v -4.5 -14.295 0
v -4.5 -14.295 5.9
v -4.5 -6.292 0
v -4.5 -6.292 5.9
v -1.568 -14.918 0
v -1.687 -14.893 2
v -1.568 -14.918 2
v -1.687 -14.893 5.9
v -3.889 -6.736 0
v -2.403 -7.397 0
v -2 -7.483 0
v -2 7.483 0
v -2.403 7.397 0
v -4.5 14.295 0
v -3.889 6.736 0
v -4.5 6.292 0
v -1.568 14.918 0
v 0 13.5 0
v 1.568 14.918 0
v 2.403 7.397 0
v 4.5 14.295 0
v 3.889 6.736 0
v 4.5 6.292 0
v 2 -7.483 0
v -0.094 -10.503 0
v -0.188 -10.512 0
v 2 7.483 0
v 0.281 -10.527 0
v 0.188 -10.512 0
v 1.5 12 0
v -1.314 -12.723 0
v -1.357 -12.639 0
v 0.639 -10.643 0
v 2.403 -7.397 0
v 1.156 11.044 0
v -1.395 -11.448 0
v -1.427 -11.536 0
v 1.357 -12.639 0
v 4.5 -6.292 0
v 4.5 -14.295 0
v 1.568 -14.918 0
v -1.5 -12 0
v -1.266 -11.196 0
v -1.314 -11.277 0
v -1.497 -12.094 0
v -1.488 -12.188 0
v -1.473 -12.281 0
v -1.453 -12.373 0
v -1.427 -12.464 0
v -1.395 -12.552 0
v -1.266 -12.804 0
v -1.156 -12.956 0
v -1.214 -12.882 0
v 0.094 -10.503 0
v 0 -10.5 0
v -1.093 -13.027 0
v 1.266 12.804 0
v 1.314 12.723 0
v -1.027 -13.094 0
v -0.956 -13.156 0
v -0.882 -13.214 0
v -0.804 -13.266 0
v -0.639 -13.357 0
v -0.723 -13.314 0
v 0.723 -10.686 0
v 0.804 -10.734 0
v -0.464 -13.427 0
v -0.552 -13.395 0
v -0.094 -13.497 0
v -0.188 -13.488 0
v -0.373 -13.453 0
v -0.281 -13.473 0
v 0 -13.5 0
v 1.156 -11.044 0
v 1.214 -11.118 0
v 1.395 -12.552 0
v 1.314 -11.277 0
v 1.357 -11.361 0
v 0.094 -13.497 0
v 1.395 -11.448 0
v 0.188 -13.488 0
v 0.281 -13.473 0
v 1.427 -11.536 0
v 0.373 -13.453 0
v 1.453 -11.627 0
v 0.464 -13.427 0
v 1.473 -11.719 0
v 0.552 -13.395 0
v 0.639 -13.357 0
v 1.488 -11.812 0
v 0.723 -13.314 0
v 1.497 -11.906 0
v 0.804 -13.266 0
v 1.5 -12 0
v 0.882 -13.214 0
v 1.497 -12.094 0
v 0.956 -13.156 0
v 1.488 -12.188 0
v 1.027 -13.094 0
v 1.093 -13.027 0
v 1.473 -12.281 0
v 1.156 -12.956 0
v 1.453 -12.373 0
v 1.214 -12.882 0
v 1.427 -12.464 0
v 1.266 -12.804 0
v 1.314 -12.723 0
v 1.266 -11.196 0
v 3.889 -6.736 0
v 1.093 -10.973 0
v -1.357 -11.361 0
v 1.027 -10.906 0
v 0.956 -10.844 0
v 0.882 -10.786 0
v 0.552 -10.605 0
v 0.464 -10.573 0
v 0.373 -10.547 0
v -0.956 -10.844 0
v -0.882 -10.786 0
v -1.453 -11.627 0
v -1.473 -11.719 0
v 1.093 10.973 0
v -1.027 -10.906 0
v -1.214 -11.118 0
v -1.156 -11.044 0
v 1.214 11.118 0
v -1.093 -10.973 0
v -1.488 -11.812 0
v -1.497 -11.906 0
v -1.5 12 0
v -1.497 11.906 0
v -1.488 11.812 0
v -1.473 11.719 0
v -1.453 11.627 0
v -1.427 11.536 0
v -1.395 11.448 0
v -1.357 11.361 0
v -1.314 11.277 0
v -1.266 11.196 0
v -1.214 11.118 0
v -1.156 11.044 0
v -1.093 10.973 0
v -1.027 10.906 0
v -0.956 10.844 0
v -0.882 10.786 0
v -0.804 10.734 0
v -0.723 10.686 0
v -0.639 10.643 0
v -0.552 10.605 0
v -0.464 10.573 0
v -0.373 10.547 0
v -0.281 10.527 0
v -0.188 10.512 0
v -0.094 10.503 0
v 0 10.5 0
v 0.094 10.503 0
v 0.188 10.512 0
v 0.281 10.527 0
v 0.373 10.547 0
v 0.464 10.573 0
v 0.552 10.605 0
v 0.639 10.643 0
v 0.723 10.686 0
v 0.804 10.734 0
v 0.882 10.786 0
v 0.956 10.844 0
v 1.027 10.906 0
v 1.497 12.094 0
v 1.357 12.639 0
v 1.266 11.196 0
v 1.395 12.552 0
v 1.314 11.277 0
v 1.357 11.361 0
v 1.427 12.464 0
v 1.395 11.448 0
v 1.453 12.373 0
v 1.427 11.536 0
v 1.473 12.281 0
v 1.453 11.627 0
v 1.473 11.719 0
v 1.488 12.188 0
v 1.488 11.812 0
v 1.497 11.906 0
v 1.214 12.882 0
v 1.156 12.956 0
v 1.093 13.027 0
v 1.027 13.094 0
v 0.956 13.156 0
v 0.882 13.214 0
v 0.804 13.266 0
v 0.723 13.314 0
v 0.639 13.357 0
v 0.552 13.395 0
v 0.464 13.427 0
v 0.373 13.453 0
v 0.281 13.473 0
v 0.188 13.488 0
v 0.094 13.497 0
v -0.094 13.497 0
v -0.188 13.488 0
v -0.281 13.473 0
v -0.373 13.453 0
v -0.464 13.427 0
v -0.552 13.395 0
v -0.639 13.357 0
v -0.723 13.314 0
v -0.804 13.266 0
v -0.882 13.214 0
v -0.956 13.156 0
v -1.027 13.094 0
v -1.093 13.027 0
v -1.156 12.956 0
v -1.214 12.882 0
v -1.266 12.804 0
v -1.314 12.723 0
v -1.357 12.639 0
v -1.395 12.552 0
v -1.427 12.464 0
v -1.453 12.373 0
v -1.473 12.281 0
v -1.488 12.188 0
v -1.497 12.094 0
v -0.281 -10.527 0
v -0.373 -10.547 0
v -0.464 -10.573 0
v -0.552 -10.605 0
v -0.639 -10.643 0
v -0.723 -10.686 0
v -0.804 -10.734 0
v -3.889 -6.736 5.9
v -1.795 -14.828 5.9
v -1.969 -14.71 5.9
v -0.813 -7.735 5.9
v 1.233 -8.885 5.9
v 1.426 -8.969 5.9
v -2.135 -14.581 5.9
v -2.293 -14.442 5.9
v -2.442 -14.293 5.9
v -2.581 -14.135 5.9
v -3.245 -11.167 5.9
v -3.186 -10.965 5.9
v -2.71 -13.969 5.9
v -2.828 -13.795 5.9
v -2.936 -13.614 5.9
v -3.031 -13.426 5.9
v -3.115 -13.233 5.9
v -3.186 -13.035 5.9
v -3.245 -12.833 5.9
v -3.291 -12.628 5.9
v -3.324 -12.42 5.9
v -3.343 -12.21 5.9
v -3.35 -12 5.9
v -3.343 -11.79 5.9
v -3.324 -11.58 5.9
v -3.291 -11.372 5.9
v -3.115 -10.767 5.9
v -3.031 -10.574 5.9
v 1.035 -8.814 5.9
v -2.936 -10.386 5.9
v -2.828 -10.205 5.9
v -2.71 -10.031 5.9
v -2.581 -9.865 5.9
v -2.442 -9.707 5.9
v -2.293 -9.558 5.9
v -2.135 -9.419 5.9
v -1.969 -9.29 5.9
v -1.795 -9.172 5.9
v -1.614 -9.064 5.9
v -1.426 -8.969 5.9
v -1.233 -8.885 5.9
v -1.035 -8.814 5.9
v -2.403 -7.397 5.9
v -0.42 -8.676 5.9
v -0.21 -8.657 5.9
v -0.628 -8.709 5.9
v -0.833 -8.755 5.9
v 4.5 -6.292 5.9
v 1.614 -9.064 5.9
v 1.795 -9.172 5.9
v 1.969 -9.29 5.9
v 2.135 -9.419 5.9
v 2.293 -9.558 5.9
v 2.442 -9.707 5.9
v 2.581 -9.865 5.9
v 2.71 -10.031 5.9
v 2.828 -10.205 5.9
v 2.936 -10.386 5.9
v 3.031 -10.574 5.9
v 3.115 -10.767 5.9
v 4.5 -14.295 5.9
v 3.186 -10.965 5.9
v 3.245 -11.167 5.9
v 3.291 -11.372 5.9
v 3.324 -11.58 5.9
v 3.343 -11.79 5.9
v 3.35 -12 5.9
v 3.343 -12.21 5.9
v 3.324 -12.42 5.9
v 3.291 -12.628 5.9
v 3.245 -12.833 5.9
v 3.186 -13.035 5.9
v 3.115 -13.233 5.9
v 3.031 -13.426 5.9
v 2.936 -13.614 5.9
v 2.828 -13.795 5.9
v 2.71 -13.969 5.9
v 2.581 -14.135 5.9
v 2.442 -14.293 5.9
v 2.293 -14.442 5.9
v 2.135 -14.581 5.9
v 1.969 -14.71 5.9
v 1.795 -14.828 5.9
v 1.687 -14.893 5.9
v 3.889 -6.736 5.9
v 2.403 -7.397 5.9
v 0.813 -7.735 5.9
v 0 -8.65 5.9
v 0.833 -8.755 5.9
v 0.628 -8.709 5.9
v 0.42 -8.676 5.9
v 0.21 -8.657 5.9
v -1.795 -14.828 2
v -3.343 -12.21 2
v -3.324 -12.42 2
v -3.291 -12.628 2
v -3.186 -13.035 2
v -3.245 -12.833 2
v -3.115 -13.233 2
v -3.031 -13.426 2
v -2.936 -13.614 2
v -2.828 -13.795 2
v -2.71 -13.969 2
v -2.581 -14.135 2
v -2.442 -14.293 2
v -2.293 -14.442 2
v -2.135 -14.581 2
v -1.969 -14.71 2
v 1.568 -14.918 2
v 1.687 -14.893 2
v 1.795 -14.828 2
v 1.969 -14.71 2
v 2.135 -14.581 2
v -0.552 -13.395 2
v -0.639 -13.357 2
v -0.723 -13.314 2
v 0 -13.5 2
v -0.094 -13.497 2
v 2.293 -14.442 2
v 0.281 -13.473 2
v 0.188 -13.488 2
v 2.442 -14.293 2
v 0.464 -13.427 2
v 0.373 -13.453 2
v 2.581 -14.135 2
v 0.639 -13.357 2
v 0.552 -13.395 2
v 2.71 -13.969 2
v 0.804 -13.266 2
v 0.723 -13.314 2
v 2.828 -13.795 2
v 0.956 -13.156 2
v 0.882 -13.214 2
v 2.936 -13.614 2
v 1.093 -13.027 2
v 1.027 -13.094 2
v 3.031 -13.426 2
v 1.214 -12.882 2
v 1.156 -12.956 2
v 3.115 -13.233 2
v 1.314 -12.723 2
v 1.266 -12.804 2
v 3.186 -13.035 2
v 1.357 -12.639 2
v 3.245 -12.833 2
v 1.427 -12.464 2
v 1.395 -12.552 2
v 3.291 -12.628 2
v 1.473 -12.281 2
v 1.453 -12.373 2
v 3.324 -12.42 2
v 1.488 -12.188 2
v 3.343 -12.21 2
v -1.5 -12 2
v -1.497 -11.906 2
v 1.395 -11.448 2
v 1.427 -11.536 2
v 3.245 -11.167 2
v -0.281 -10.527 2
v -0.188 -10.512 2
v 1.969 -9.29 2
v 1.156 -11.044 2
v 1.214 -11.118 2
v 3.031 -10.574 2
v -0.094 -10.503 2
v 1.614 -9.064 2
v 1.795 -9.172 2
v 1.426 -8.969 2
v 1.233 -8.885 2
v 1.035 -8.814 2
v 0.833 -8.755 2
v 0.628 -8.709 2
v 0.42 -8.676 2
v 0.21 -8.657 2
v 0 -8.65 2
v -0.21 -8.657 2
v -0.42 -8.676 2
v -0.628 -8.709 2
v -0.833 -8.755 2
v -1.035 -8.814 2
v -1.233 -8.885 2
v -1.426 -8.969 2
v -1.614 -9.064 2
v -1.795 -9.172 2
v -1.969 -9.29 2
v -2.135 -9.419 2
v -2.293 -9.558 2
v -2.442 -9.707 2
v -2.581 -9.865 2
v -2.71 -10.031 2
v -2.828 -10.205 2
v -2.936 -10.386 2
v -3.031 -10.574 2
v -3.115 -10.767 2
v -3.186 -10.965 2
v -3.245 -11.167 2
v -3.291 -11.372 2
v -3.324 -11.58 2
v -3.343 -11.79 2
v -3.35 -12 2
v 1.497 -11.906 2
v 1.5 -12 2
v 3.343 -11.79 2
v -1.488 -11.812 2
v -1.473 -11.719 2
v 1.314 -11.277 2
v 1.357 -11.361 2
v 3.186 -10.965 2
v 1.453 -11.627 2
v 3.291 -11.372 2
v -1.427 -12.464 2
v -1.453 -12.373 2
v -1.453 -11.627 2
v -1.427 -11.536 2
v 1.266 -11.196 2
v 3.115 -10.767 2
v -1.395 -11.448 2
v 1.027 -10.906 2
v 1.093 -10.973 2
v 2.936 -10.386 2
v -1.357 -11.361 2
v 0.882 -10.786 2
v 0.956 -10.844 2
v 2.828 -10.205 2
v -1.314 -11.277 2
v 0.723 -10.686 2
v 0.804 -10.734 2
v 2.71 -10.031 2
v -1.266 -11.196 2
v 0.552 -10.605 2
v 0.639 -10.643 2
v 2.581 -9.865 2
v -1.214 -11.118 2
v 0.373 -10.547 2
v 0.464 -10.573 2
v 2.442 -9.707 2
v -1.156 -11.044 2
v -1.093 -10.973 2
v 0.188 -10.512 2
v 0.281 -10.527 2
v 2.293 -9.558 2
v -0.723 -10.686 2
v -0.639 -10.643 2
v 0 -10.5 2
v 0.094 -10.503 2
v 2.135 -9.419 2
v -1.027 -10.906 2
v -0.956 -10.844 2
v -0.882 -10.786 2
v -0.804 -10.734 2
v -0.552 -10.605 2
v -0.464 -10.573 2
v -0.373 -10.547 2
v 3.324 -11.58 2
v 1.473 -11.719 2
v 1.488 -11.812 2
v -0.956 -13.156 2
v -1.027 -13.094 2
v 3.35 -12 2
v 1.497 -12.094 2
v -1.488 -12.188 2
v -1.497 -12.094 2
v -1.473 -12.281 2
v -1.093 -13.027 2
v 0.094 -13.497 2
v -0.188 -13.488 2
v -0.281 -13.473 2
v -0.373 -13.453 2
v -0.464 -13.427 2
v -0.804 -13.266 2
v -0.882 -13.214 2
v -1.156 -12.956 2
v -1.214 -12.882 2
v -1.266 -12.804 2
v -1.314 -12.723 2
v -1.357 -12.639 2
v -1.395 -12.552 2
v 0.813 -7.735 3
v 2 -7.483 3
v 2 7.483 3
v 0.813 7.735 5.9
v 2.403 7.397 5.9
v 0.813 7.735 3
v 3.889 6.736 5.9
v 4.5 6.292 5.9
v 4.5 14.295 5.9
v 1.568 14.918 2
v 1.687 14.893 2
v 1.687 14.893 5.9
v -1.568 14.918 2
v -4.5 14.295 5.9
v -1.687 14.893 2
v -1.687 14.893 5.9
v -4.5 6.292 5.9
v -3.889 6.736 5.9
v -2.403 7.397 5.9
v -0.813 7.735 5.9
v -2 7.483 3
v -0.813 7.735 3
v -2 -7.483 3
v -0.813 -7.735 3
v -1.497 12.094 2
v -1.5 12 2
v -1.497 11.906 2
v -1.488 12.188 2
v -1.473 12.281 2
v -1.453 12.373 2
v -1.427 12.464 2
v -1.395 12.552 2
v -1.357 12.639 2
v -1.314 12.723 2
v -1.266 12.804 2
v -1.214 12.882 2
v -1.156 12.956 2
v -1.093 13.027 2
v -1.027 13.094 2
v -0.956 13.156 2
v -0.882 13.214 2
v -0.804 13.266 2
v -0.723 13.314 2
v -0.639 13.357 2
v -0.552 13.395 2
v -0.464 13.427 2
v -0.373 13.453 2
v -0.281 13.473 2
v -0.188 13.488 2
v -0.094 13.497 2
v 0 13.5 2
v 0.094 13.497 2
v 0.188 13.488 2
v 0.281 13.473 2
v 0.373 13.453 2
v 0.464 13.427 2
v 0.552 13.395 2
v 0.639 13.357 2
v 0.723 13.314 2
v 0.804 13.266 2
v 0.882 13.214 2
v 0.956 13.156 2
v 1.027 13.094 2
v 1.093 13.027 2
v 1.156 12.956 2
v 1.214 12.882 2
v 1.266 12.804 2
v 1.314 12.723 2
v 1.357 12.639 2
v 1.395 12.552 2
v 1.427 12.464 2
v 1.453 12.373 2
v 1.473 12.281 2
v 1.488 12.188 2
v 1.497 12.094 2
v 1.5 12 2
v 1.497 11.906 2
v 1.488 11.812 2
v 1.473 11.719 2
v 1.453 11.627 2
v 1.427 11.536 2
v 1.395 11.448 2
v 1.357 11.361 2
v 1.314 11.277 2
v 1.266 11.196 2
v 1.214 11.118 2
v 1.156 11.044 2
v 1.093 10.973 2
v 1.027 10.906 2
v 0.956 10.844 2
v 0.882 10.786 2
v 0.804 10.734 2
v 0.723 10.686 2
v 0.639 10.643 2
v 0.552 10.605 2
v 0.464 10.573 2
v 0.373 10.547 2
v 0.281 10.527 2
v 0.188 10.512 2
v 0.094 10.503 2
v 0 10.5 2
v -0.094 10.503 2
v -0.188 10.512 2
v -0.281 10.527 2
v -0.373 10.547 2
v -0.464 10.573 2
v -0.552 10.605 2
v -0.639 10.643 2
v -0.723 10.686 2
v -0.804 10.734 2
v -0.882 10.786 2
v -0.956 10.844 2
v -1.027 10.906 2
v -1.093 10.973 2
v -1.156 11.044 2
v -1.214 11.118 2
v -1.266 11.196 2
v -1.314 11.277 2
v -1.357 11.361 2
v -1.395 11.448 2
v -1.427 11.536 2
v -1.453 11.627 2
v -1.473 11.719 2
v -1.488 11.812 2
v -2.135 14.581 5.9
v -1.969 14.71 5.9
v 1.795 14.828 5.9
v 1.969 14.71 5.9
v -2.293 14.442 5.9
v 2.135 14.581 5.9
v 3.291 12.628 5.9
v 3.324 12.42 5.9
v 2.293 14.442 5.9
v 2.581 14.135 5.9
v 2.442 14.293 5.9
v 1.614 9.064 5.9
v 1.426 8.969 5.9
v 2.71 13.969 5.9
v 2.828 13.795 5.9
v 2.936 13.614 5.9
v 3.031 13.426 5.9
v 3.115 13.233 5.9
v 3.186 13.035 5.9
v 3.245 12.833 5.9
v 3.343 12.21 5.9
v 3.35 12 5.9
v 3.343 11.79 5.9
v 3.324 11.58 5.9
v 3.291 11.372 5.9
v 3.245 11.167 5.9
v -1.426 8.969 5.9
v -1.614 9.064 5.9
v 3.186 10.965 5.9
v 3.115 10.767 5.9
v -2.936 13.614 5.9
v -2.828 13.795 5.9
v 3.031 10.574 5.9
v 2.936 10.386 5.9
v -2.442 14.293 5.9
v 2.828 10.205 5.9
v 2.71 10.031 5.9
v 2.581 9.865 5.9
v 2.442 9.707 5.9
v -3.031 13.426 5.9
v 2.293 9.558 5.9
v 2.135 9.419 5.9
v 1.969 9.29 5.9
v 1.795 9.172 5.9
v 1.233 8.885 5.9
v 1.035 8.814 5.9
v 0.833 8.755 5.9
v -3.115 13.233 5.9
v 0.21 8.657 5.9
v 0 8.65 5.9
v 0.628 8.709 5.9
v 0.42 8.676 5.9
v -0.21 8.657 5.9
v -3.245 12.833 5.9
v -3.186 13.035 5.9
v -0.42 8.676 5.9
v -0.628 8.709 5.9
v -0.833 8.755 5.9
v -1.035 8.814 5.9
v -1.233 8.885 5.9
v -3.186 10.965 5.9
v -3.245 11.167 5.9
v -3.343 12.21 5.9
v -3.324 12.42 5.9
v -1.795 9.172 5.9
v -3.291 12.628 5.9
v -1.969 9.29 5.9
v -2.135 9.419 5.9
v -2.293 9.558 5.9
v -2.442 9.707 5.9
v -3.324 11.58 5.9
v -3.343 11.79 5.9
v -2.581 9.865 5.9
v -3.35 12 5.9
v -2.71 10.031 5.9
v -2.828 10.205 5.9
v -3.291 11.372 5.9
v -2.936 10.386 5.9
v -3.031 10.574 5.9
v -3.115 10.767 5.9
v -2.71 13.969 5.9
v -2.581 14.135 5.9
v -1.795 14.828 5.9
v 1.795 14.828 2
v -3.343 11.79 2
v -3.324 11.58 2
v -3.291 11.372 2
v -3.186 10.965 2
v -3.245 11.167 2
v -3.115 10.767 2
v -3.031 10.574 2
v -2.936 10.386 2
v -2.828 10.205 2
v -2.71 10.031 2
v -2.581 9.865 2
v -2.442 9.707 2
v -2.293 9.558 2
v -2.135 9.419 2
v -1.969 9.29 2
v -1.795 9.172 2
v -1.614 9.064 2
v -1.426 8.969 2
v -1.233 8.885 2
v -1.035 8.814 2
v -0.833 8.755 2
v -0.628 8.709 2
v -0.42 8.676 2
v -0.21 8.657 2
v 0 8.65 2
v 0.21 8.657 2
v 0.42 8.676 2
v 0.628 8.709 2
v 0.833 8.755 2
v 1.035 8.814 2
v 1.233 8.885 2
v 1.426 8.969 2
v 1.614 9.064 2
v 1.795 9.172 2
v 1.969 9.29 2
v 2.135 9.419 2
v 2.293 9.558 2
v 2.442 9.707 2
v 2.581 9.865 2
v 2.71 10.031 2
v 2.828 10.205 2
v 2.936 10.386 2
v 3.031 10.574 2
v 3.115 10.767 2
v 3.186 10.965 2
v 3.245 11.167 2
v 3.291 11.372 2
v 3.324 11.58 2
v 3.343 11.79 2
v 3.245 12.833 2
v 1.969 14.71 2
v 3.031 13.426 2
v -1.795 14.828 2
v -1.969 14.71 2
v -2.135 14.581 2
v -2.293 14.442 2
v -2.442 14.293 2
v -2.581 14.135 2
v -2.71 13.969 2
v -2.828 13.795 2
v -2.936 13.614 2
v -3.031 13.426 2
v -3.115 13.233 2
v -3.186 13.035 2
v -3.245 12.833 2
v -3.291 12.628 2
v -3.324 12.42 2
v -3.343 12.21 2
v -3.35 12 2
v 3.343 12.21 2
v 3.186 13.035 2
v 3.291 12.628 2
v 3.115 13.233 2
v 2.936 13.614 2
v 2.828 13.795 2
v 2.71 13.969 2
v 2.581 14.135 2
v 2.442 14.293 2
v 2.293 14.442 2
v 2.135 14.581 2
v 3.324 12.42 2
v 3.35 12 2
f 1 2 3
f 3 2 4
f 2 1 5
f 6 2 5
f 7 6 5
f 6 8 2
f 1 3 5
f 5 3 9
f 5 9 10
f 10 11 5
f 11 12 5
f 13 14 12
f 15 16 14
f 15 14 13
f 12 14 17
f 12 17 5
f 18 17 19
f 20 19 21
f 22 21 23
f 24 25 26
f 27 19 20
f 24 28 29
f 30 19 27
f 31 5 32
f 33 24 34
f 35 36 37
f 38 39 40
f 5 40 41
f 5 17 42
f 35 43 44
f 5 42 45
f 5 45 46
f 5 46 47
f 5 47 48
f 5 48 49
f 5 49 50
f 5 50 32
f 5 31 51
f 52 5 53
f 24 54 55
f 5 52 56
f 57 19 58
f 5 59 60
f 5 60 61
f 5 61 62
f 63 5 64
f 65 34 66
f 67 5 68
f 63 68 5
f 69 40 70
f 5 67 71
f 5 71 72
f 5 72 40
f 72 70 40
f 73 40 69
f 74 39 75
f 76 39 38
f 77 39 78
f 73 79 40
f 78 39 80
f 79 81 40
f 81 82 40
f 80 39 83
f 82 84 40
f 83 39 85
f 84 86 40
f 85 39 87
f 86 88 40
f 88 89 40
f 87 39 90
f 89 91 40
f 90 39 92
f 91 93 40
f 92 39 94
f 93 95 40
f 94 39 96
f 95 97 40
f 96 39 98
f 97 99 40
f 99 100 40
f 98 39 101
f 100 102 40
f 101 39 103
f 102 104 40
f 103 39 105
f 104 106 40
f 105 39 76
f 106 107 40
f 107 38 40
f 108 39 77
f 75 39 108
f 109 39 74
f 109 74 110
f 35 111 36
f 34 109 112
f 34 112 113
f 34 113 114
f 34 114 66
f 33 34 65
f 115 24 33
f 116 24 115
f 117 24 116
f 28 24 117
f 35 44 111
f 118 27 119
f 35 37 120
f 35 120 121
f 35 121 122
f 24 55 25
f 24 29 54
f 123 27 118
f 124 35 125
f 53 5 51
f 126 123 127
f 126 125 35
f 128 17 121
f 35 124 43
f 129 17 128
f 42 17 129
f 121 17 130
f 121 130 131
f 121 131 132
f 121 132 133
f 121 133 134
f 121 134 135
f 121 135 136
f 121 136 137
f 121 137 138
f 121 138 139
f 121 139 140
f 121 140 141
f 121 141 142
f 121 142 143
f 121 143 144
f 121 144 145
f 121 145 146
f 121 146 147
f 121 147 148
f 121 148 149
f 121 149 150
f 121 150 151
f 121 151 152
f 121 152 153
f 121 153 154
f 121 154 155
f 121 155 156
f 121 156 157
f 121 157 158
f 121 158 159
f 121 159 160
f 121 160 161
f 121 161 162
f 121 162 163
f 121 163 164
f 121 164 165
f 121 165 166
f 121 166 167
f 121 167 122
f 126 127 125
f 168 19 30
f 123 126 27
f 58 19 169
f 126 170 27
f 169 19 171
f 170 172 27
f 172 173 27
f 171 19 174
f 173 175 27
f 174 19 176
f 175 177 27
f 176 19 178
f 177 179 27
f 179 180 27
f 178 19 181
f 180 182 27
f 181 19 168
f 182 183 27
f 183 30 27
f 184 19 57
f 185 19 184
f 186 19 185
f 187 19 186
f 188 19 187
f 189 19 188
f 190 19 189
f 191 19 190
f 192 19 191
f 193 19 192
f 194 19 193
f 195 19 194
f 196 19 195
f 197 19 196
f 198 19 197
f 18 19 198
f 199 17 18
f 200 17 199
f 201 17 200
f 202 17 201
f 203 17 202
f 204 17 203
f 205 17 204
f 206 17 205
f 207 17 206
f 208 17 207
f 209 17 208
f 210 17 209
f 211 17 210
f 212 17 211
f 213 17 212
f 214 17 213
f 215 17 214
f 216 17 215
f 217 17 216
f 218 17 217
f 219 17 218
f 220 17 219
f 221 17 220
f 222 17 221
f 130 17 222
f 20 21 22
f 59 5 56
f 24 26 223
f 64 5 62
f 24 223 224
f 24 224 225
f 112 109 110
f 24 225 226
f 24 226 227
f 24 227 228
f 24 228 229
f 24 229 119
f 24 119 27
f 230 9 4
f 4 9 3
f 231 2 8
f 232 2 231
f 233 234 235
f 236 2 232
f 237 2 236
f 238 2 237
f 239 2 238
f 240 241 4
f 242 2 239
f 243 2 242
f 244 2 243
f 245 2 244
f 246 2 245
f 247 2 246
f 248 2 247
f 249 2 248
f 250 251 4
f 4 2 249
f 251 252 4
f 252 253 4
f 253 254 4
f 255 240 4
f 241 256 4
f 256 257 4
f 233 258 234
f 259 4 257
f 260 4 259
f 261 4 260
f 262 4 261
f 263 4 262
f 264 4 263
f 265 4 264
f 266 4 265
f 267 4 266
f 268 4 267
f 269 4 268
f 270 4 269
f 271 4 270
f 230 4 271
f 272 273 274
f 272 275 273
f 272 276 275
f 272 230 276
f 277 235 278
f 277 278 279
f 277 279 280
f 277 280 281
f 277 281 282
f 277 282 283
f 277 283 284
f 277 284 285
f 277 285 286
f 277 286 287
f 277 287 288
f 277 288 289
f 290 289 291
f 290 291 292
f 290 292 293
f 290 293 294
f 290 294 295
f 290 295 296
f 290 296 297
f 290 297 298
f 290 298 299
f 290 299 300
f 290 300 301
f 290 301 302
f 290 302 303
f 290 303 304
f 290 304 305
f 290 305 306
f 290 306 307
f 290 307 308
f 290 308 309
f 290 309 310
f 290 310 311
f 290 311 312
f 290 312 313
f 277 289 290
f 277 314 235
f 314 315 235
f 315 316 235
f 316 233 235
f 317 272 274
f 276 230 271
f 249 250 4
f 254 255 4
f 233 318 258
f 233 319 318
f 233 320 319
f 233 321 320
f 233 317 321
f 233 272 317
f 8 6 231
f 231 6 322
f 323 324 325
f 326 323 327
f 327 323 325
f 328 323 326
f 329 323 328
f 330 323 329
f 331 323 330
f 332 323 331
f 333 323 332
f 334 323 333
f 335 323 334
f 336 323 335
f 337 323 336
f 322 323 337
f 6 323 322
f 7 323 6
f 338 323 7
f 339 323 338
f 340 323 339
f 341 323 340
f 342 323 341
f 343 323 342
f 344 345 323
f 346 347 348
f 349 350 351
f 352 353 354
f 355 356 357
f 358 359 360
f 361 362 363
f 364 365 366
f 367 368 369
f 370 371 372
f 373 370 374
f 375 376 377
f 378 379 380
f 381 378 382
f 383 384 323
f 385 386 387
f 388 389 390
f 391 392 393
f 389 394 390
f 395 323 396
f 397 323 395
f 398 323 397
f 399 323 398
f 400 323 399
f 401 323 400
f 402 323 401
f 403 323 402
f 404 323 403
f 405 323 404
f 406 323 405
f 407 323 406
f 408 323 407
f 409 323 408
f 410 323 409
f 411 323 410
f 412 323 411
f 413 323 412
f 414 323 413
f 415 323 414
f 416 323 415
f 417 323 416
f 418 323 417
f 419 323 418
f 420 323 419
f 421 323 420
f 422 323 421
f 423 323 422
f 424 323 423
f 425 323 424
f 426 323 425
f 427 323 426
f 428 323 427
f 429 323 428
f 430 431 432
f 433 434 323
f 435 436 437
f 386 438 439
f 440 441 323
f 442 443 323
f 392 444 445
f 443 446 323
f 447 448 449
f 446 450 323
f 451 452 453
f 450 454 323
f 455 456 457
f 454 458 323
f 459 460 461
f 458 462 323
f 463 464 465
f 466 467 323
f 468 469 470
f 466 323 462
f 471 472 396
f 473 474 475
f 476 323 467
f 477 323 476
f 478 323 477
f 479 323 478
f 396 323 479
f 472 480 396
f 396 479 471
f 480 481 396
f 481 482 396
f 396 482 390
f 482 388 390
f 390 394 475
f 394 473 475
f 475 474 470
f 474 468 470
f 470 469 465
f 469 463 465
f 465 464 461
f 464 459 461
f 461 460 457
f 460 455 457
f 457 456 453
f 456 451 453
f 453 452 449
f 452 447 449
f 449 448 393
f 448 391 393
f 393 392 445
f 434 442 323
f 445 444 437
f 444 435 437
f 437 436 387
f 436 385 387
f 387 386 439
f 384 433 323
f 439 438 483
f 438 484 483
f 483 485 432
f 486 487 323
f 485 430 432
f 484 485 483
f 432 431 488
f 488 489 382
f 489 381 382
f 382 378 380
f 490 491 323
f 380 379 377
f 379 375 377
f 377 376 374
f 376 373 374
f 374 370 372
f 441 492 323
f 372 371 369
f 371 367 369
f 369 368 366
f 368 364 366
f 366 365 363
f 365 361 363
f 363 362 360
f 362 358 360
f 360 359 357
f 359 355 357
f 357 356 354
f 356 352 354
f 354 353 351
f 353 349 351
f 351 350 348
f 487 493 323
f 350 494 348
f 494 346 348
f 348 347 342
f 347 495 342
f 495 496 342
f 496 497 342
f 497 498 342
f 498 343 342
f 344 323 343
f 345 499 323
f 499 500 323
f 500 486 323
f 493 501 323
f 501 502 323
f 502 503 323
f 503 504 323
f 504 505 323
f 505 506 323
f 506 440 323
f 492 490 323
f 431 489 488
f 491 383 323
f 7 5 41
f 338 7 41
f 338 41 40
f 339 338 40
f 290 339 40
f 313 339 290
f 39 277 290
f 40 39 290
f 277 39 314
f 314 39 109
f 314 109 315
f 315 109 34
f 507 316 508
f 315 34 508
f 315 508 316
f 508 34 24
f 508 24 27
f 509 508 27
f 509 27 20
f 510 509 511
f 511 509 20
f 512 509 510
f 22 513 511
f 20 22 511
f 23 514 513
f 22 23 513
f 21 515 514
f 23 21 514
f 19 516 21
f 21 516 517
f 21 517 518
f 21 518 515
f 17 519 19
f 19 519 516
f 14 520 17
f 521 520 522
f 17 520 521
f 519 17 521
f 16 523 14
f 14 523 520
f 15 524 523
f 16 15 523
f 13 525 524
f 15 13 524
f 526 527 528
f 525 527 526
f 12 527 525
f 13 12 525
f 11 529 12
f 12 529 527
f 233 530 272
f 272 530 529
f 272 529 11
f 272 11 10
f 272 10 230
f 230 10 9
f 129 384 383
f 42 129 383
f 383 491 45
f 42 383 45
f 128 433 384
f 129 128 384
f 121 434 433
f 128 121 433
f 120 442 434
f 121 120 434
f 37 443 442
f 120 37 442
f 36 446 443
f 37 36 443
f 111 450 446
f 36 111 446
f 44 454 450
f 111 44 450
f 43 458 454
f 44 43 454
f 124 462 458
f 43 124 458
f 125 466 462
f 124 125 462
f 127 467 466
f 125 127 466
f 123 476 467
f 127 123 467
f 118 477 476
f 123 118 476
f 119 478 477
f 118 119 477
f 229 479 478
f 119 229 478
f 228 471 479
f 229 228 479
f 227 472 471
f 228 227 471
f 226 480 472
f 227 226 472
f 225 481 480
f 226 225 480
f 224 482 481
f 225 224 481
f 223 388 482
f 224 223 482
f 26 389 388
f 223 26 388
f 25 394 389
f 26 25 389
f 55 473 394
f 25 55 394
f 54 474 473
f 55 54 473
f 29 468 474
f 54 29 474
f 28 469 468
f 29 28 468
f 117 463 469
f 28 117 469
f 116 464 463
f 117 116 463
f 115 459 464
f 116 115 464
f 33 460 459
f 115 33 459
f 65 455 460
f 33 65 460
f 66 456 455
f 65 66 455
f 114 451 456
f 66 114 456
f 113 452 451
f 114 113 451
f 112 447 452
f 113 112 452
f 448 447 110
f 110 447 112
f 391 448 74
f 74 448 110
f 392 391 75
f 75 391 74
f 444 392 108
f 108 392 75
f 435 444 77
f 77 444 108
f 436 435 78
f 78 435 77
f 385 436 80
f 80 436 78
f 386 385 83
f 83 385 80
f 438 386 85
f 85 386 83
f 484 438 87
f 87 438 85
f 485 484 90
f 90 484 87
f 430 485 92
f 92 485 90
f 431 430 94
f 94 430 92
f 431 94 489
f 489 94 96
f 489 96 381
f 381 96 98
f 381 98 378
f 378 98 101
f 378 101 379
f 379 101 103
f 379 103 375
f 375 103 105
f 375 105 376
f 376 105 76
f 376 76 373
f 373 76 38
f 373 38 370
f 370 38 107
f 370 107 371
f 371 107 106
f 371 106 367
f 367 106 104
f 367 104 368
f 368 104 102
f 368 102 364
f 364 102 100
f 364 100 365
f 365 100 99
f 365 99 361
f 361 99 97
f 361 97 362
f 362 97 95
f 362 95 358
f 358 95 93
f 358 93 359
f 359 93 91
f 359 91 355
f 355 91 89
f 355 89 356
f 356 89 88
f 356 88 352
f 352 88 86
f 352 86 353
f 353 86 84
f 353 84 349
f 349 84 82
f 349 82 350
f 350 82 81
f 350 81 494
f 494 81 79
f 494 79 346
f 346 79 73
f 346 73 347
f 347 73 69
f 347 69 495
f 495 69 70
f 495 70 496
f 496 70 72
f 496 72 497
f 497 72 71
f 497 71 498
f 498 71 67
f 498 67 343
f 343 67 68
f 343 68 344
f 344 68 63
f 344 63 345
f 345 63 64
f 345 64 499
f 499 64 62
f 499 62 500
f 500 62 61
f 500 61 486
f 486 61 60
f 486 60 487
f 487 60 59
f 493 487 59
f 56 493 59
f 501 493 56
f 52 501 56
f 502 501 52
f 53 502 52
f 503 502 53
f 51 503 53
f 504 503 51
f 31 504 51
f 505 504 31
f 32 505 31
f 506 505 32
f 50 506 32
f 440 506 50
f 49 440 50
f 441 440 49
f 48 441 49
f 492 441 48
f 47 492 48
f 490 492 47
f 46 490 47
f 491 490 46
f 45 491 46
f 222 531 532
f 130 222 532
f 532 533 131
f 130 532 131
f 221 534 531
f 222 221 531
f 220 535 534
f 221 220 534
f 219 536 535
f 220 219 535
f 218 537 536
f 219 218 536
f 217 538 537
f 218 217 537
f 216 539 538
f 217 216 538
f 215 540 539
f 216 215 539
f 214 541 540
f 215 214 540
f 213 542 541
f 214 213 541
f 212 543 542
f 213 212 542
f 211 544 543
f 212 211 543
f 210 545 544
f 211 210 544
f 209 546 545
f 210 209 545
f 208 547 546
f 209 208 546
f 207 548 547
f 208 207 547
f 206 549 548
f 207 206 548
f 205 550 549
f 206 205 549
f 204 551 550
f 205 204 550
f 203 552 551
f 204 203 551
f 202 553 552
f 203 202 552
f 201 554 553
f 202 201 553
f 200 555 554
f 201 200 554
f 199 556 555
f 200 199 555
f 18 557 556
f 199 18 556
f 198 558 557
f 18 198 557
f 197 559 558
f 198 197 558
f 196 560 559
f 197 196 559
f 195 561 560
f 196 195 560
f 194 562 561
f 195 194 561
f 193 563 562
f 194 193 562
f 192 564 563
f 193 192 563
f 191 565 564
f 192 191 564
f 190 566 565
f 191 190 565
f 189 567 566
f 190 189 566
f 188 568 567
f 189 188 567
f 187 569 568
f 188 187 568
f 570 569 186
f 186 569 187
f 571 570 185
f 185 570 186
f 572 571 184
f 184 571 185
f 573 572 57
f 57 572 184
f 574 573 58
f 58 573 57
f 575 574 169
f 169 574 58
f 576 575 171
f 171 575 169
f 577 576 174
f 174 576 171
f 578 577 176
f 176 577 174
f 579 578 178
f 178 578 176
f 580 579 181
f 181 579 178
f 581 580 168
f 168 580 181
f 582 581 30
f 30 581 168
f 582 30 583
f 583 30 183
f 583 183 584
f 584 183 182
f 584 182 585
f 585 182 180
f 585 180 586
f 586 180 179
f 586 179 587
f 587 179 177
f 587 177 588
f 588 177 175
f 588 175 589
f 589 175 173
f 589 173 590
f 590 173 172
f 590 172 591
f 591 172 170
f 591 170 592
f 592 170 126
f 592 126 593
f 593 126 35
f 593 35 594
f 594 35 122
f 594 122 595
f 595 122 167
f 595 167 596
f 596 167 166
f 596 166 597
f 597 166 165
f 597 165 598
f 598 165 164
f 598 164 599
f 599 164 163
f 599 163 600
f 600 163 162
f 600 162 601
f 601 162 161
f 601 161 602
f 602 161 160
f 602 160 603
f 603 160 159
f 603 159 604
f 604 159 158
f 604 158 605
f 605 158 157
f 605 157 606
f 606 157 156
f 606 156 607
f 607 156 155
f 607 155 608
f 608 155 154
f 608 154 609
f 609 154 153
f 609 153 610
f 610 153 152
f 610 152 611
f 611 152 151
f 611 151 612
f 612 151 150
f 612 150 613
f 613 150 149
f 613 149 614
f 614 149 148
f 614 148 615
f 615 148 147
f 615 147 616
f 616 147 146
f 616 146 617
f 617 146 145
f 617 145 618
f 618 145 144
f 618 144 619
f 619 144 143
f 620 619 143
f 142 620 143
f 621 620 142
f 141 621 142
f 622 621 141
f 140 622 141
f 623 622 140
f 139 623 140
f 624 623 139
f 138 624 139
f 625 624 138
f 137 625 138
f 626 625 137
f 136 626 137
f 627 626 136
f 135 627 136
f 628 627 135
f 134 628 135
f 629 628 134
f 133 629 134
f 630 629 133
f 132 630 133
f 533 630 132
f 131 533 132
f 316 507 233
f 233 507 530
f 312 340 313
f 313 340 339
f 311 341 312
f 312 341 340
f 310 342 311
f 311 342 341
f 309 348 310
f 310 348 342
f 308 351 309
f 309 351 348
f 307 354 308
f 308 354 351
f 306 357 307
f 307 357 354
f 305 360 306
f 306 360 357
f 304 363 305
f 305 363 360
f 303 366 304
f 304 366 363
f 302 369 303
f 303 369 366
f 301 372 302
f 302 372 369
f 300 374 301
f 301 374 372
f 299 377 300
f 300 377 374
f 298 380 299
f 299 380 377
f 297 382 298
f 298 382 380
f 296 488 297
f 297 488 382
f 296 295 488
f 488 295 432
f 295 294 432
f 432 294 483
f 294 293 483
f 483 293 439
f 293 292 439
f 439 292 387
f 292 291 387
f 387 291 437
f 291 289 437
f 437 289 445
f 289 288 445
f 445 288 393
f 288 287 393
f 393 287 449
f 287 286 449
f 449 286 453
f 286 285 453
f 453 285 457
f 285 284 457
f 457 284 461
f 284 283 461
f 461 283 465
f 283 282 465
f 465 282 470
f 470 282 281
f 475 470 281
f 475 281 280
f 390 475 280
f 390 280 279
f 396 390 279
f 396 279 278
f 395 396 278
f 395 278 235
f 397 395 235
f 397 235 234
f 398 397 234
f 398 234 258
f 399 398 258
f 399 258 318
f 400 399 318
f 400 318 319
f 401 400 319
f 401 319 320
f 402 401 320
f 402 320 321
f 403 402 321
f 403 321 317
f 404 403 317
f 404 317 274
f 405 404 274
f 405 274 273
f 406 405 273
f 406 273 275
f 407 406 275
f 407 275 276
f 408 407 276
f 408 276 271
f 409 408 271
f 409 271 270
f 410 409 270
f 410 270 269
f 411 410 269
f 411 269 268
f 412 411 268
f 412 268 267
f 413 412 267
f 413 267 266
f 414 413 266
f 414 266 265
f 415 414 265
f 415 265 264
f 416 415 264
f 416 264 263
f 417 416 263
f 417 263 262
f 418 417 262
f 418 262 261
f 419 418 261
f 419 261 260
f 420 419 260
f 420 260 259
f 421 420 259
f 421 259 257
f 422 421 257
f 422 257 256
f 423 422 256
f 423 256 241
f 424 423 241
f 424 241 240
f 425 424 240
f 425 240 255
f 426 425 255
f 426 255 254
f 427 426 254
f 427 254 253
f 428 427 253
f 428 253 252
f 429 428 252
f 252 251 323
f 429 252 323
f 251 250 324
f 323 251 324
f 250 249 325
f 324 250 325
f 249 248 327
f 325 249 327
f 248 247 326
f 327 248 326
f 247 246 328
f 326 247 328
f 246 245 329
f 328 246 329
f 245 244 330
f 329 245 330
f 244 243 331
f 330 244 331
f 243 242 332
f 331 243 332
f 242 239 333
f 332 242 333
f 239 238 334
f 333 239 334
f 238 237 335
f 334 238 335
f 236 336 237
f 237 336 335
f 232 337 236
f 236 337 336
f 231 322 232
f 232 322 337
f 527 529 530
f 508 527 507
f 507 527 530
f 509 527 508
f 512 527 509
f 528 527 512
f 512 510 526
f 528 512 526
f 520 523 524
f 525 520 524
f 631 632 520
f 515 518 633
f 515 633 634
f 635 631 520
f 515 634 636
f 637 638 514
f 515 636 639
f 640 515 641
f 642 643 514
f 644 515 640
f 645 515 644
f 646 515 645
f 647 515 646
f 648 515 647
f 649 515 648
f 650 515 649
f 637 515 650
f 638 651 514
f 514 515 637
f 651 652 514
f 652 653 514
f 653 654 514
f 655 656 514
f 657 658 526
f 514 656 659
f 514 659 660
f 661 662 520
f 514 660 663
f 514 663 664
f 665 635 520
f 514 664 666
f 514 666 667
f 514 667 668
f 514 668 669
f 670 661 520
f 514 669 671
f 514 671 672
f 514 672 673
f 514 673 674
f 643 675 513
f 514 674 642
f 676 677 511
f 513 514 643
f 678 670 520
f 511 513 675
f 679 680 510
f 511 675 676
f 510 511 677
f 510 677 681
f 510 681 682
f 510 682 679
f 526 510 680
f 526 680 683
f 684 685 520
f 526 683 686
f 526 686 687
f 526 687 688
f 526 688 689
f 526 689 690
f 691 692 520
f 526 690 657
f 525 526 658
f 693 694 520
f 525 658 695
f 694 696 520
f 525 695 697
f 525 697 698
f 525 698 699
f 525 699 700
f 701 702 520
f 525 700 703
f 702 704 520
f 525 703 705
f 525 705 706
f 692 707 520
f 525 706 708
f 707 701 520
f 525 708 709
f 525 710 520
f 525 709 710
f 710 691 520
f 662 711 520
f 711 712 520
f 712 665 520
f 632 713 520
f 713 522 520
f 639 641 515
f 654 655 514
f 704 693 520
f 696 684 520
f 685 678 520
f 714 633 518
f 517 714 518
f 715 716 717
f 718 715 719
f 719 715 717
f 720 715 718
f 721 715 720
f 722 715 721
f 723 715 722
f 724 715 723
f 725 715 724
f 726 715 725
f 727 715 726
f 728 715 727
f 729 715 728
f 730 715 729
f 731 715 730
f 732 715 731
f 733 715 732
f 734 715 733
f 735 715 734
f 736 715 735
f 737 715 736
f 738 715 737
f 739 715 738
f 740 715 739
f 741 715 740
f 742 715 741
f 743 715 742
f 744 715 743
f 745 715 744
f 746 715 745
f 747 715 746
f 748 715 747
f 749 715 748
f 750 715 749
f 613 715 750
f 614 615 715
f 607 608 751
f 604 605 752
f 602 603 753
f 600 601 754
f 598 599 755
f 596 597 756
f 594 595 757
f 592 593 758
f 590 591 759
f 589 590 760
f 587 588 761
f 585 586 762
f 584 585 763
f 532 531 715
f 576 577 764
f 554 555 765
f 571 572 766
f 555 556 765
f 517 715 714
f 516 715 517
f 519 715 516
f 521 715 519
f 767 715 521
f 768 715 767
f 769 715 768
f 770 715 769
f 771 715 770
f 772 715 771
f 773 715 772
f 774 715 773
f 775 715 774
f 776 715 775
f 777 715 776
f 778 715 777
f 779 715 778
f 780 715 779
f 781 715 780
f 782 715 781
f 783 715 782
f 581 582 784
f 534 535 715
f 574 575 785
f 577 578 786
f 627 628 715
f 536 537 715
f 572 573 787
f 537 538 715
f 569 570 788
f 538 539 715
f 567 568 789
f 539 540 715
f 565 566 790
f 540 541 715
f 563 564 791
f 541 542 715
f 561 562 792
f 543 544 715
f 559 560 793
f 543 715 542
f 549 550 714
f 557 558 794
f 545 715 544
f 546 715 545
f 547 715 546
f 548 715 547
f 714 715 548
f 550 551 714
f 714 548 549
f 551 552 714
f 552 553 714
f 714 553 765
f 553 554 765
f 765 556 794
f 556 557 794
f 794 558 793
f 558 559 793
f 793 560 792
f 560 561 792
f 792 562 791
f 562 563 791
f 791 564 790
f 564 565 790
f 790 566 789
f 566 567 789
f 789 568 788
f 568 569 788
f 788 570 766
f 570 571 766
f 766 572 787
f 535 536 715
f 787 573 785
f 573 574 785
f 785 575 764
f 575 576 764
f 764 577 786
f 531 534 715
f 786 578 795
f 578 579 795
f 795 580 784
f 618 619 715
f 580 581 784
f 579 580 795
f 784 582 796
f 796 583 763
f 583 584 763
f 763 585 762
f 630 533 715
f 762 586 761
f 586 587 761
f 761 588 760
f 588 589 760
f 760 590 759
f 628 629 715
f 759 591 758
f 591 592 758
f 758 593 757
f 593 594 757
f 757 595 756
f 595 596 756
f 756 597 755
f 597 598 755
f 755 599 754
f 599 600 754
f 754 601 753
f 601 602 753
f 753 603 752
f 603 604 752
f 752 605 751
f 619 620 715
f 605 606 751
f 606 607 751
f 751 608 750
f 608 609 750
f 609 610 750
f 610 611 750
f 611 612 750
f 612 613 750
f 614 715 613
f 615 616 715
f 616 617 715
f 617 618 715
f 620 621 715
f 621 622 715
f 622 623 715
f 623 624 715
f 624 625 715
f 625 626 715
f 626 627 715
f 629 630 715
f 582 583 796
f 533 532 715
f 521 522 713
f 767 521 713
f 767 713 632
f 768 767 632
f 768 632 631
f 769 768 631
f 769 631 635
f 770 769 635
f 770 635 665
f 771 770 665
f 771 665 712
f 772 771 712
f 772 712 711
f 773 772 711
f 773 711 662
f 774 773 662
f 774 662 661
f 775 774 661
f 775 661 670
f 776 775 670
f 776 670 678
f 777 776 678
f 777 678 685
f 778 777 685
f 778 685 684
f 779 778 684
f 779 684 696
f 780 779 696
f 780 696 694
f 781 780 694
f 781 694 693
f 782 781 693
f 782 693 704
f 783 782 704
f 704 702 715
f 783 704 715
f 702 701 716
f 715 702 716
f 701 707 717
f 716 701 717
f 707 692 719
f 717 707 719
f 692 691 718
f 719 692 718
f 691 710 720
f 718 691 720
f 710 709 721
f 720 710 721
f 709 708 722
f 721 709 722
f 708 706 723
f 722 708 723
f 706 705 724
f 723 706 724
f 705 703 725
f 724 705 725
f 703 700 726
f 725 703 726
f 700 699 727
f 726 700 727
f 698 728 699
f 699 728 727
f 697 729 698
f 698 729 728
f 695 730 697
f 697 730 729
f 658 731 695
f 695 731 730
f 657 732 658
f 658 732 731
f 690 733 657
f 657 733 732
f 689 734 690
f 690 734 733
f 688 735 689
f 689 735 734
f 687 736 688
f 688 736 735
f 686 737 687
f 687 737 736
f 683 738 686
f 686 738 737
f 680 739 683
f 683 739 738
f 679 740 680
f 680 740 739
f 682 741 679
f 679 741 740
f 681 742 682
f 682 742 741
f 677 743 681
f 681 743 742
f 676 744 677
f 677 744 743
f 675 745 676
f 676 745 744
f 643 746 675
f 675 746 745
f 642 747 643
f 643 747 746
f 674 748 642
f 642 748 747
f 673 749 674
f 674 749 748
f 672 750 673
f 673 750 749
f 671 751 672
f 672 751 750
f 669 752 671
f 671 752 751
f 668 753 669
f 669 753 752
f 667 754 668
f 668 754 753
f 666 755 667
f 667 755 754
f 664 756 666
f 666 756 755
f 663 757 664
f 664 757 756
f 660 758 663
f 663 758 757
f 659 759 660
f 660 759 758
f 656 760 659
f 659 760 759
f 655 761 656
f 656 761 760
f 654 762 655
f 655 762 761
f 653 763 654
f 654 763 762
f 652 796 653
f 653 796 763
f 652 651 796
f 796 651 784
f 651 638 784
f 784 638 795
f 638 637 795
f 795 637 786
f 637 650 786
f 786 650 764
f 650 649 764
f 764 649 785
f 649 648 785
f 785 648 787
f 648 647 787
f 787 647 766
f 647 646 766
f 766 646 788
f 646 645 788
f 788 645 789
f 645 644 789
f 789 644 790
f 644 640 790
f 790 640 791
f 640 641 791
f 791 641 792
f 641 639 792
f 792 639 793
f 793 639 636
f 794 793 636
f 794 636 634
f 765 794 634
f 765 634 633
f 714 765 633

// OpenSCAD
module foot ()
{
//millimeters

//Base Parameters
    radius = 14  ;
    height = 5.9 ;
	numberOfScrewHoles = 4;
	lowerThickness = 2 ;
//Diameter of Screw bolt
	screwSize = 3 ;
//Diameter of head size
	headSize = 6.7;

//Hole distance for the center
	distFromCenter = 12;
	translate([-2,-8,0])
		cube([4, 16,3], center=false);


	difference() {
		cylinder(r=radius+1,h=height,center=false,$fs = 0.01);
		cylinder(r=radius/1.8,h=height,center=false,$fs = 0.01);
		holePattern( numberOfScrewHoles, lowerThickness, screwSize/2, headSize/2, distFromCenter );
		translate([4.5,-15,0])
			cube([20, 30,7], center=false);
		mirror([1,0,0])
			translate([4.5,-15,0])
				cube([20, 30,7], center=false);
	}
}

module screwHole (screwSize, headSize, lowerThickness)
{
	////Hole models are 13 mm
	totalThickness=30;
	cylinder(r=screwSize, h=totalThickness, center = false, $fn=100);
		translate([0,0,lowerThickness])
			cylinder(r=headSize, h=totalThickness-lowerThickness, center = false, $fn=100);
}

//module mountHoles (number, lowerThickness, screwSize, headSize)
module holePattern (number, lowerThickness, screwSize, headSize, distFromCenter)
{
	////Hole models are 13 mm
	totalThickness=13;
	for ( i = [0:number-1] ) {
		rotate(i*360/number)
			translate([distFromCenter,0,0]) 
				screwHole (screwSize, headSize, lowerThickness);
	}
}
//screwHole(1,2,5);
//holePattern(4,7,1,2,5);
foot();
//sphere(2, $fn=100);

//translate([0,0,-6])
//	cylinder(h= 6, r1 = 5, r2 = 8, center = false, $fn=100);
//translate([0,0,-36])
//	cylinder(h= 30, r1 = 4, r2 = 5, center = false, $fn=100);
//translate([0,0,-40])
//	sphere(7, $fn=100, center = false); 


module screwHead()
{
	color([1,0,0]);
	//Screw 5.6 mm diameter, thickness 1.5 mm  (plus .2 mm wiggle room)
	cylinder(h= 0.8, r = 5.8/2, center = false, $fn=100);
	translate([0,0,-1.0])
		cylinder(h= 1.0, r1 = 4.1/2, r2 = 5.8/2, center = false, $fn=100);
}

//screwHead();
